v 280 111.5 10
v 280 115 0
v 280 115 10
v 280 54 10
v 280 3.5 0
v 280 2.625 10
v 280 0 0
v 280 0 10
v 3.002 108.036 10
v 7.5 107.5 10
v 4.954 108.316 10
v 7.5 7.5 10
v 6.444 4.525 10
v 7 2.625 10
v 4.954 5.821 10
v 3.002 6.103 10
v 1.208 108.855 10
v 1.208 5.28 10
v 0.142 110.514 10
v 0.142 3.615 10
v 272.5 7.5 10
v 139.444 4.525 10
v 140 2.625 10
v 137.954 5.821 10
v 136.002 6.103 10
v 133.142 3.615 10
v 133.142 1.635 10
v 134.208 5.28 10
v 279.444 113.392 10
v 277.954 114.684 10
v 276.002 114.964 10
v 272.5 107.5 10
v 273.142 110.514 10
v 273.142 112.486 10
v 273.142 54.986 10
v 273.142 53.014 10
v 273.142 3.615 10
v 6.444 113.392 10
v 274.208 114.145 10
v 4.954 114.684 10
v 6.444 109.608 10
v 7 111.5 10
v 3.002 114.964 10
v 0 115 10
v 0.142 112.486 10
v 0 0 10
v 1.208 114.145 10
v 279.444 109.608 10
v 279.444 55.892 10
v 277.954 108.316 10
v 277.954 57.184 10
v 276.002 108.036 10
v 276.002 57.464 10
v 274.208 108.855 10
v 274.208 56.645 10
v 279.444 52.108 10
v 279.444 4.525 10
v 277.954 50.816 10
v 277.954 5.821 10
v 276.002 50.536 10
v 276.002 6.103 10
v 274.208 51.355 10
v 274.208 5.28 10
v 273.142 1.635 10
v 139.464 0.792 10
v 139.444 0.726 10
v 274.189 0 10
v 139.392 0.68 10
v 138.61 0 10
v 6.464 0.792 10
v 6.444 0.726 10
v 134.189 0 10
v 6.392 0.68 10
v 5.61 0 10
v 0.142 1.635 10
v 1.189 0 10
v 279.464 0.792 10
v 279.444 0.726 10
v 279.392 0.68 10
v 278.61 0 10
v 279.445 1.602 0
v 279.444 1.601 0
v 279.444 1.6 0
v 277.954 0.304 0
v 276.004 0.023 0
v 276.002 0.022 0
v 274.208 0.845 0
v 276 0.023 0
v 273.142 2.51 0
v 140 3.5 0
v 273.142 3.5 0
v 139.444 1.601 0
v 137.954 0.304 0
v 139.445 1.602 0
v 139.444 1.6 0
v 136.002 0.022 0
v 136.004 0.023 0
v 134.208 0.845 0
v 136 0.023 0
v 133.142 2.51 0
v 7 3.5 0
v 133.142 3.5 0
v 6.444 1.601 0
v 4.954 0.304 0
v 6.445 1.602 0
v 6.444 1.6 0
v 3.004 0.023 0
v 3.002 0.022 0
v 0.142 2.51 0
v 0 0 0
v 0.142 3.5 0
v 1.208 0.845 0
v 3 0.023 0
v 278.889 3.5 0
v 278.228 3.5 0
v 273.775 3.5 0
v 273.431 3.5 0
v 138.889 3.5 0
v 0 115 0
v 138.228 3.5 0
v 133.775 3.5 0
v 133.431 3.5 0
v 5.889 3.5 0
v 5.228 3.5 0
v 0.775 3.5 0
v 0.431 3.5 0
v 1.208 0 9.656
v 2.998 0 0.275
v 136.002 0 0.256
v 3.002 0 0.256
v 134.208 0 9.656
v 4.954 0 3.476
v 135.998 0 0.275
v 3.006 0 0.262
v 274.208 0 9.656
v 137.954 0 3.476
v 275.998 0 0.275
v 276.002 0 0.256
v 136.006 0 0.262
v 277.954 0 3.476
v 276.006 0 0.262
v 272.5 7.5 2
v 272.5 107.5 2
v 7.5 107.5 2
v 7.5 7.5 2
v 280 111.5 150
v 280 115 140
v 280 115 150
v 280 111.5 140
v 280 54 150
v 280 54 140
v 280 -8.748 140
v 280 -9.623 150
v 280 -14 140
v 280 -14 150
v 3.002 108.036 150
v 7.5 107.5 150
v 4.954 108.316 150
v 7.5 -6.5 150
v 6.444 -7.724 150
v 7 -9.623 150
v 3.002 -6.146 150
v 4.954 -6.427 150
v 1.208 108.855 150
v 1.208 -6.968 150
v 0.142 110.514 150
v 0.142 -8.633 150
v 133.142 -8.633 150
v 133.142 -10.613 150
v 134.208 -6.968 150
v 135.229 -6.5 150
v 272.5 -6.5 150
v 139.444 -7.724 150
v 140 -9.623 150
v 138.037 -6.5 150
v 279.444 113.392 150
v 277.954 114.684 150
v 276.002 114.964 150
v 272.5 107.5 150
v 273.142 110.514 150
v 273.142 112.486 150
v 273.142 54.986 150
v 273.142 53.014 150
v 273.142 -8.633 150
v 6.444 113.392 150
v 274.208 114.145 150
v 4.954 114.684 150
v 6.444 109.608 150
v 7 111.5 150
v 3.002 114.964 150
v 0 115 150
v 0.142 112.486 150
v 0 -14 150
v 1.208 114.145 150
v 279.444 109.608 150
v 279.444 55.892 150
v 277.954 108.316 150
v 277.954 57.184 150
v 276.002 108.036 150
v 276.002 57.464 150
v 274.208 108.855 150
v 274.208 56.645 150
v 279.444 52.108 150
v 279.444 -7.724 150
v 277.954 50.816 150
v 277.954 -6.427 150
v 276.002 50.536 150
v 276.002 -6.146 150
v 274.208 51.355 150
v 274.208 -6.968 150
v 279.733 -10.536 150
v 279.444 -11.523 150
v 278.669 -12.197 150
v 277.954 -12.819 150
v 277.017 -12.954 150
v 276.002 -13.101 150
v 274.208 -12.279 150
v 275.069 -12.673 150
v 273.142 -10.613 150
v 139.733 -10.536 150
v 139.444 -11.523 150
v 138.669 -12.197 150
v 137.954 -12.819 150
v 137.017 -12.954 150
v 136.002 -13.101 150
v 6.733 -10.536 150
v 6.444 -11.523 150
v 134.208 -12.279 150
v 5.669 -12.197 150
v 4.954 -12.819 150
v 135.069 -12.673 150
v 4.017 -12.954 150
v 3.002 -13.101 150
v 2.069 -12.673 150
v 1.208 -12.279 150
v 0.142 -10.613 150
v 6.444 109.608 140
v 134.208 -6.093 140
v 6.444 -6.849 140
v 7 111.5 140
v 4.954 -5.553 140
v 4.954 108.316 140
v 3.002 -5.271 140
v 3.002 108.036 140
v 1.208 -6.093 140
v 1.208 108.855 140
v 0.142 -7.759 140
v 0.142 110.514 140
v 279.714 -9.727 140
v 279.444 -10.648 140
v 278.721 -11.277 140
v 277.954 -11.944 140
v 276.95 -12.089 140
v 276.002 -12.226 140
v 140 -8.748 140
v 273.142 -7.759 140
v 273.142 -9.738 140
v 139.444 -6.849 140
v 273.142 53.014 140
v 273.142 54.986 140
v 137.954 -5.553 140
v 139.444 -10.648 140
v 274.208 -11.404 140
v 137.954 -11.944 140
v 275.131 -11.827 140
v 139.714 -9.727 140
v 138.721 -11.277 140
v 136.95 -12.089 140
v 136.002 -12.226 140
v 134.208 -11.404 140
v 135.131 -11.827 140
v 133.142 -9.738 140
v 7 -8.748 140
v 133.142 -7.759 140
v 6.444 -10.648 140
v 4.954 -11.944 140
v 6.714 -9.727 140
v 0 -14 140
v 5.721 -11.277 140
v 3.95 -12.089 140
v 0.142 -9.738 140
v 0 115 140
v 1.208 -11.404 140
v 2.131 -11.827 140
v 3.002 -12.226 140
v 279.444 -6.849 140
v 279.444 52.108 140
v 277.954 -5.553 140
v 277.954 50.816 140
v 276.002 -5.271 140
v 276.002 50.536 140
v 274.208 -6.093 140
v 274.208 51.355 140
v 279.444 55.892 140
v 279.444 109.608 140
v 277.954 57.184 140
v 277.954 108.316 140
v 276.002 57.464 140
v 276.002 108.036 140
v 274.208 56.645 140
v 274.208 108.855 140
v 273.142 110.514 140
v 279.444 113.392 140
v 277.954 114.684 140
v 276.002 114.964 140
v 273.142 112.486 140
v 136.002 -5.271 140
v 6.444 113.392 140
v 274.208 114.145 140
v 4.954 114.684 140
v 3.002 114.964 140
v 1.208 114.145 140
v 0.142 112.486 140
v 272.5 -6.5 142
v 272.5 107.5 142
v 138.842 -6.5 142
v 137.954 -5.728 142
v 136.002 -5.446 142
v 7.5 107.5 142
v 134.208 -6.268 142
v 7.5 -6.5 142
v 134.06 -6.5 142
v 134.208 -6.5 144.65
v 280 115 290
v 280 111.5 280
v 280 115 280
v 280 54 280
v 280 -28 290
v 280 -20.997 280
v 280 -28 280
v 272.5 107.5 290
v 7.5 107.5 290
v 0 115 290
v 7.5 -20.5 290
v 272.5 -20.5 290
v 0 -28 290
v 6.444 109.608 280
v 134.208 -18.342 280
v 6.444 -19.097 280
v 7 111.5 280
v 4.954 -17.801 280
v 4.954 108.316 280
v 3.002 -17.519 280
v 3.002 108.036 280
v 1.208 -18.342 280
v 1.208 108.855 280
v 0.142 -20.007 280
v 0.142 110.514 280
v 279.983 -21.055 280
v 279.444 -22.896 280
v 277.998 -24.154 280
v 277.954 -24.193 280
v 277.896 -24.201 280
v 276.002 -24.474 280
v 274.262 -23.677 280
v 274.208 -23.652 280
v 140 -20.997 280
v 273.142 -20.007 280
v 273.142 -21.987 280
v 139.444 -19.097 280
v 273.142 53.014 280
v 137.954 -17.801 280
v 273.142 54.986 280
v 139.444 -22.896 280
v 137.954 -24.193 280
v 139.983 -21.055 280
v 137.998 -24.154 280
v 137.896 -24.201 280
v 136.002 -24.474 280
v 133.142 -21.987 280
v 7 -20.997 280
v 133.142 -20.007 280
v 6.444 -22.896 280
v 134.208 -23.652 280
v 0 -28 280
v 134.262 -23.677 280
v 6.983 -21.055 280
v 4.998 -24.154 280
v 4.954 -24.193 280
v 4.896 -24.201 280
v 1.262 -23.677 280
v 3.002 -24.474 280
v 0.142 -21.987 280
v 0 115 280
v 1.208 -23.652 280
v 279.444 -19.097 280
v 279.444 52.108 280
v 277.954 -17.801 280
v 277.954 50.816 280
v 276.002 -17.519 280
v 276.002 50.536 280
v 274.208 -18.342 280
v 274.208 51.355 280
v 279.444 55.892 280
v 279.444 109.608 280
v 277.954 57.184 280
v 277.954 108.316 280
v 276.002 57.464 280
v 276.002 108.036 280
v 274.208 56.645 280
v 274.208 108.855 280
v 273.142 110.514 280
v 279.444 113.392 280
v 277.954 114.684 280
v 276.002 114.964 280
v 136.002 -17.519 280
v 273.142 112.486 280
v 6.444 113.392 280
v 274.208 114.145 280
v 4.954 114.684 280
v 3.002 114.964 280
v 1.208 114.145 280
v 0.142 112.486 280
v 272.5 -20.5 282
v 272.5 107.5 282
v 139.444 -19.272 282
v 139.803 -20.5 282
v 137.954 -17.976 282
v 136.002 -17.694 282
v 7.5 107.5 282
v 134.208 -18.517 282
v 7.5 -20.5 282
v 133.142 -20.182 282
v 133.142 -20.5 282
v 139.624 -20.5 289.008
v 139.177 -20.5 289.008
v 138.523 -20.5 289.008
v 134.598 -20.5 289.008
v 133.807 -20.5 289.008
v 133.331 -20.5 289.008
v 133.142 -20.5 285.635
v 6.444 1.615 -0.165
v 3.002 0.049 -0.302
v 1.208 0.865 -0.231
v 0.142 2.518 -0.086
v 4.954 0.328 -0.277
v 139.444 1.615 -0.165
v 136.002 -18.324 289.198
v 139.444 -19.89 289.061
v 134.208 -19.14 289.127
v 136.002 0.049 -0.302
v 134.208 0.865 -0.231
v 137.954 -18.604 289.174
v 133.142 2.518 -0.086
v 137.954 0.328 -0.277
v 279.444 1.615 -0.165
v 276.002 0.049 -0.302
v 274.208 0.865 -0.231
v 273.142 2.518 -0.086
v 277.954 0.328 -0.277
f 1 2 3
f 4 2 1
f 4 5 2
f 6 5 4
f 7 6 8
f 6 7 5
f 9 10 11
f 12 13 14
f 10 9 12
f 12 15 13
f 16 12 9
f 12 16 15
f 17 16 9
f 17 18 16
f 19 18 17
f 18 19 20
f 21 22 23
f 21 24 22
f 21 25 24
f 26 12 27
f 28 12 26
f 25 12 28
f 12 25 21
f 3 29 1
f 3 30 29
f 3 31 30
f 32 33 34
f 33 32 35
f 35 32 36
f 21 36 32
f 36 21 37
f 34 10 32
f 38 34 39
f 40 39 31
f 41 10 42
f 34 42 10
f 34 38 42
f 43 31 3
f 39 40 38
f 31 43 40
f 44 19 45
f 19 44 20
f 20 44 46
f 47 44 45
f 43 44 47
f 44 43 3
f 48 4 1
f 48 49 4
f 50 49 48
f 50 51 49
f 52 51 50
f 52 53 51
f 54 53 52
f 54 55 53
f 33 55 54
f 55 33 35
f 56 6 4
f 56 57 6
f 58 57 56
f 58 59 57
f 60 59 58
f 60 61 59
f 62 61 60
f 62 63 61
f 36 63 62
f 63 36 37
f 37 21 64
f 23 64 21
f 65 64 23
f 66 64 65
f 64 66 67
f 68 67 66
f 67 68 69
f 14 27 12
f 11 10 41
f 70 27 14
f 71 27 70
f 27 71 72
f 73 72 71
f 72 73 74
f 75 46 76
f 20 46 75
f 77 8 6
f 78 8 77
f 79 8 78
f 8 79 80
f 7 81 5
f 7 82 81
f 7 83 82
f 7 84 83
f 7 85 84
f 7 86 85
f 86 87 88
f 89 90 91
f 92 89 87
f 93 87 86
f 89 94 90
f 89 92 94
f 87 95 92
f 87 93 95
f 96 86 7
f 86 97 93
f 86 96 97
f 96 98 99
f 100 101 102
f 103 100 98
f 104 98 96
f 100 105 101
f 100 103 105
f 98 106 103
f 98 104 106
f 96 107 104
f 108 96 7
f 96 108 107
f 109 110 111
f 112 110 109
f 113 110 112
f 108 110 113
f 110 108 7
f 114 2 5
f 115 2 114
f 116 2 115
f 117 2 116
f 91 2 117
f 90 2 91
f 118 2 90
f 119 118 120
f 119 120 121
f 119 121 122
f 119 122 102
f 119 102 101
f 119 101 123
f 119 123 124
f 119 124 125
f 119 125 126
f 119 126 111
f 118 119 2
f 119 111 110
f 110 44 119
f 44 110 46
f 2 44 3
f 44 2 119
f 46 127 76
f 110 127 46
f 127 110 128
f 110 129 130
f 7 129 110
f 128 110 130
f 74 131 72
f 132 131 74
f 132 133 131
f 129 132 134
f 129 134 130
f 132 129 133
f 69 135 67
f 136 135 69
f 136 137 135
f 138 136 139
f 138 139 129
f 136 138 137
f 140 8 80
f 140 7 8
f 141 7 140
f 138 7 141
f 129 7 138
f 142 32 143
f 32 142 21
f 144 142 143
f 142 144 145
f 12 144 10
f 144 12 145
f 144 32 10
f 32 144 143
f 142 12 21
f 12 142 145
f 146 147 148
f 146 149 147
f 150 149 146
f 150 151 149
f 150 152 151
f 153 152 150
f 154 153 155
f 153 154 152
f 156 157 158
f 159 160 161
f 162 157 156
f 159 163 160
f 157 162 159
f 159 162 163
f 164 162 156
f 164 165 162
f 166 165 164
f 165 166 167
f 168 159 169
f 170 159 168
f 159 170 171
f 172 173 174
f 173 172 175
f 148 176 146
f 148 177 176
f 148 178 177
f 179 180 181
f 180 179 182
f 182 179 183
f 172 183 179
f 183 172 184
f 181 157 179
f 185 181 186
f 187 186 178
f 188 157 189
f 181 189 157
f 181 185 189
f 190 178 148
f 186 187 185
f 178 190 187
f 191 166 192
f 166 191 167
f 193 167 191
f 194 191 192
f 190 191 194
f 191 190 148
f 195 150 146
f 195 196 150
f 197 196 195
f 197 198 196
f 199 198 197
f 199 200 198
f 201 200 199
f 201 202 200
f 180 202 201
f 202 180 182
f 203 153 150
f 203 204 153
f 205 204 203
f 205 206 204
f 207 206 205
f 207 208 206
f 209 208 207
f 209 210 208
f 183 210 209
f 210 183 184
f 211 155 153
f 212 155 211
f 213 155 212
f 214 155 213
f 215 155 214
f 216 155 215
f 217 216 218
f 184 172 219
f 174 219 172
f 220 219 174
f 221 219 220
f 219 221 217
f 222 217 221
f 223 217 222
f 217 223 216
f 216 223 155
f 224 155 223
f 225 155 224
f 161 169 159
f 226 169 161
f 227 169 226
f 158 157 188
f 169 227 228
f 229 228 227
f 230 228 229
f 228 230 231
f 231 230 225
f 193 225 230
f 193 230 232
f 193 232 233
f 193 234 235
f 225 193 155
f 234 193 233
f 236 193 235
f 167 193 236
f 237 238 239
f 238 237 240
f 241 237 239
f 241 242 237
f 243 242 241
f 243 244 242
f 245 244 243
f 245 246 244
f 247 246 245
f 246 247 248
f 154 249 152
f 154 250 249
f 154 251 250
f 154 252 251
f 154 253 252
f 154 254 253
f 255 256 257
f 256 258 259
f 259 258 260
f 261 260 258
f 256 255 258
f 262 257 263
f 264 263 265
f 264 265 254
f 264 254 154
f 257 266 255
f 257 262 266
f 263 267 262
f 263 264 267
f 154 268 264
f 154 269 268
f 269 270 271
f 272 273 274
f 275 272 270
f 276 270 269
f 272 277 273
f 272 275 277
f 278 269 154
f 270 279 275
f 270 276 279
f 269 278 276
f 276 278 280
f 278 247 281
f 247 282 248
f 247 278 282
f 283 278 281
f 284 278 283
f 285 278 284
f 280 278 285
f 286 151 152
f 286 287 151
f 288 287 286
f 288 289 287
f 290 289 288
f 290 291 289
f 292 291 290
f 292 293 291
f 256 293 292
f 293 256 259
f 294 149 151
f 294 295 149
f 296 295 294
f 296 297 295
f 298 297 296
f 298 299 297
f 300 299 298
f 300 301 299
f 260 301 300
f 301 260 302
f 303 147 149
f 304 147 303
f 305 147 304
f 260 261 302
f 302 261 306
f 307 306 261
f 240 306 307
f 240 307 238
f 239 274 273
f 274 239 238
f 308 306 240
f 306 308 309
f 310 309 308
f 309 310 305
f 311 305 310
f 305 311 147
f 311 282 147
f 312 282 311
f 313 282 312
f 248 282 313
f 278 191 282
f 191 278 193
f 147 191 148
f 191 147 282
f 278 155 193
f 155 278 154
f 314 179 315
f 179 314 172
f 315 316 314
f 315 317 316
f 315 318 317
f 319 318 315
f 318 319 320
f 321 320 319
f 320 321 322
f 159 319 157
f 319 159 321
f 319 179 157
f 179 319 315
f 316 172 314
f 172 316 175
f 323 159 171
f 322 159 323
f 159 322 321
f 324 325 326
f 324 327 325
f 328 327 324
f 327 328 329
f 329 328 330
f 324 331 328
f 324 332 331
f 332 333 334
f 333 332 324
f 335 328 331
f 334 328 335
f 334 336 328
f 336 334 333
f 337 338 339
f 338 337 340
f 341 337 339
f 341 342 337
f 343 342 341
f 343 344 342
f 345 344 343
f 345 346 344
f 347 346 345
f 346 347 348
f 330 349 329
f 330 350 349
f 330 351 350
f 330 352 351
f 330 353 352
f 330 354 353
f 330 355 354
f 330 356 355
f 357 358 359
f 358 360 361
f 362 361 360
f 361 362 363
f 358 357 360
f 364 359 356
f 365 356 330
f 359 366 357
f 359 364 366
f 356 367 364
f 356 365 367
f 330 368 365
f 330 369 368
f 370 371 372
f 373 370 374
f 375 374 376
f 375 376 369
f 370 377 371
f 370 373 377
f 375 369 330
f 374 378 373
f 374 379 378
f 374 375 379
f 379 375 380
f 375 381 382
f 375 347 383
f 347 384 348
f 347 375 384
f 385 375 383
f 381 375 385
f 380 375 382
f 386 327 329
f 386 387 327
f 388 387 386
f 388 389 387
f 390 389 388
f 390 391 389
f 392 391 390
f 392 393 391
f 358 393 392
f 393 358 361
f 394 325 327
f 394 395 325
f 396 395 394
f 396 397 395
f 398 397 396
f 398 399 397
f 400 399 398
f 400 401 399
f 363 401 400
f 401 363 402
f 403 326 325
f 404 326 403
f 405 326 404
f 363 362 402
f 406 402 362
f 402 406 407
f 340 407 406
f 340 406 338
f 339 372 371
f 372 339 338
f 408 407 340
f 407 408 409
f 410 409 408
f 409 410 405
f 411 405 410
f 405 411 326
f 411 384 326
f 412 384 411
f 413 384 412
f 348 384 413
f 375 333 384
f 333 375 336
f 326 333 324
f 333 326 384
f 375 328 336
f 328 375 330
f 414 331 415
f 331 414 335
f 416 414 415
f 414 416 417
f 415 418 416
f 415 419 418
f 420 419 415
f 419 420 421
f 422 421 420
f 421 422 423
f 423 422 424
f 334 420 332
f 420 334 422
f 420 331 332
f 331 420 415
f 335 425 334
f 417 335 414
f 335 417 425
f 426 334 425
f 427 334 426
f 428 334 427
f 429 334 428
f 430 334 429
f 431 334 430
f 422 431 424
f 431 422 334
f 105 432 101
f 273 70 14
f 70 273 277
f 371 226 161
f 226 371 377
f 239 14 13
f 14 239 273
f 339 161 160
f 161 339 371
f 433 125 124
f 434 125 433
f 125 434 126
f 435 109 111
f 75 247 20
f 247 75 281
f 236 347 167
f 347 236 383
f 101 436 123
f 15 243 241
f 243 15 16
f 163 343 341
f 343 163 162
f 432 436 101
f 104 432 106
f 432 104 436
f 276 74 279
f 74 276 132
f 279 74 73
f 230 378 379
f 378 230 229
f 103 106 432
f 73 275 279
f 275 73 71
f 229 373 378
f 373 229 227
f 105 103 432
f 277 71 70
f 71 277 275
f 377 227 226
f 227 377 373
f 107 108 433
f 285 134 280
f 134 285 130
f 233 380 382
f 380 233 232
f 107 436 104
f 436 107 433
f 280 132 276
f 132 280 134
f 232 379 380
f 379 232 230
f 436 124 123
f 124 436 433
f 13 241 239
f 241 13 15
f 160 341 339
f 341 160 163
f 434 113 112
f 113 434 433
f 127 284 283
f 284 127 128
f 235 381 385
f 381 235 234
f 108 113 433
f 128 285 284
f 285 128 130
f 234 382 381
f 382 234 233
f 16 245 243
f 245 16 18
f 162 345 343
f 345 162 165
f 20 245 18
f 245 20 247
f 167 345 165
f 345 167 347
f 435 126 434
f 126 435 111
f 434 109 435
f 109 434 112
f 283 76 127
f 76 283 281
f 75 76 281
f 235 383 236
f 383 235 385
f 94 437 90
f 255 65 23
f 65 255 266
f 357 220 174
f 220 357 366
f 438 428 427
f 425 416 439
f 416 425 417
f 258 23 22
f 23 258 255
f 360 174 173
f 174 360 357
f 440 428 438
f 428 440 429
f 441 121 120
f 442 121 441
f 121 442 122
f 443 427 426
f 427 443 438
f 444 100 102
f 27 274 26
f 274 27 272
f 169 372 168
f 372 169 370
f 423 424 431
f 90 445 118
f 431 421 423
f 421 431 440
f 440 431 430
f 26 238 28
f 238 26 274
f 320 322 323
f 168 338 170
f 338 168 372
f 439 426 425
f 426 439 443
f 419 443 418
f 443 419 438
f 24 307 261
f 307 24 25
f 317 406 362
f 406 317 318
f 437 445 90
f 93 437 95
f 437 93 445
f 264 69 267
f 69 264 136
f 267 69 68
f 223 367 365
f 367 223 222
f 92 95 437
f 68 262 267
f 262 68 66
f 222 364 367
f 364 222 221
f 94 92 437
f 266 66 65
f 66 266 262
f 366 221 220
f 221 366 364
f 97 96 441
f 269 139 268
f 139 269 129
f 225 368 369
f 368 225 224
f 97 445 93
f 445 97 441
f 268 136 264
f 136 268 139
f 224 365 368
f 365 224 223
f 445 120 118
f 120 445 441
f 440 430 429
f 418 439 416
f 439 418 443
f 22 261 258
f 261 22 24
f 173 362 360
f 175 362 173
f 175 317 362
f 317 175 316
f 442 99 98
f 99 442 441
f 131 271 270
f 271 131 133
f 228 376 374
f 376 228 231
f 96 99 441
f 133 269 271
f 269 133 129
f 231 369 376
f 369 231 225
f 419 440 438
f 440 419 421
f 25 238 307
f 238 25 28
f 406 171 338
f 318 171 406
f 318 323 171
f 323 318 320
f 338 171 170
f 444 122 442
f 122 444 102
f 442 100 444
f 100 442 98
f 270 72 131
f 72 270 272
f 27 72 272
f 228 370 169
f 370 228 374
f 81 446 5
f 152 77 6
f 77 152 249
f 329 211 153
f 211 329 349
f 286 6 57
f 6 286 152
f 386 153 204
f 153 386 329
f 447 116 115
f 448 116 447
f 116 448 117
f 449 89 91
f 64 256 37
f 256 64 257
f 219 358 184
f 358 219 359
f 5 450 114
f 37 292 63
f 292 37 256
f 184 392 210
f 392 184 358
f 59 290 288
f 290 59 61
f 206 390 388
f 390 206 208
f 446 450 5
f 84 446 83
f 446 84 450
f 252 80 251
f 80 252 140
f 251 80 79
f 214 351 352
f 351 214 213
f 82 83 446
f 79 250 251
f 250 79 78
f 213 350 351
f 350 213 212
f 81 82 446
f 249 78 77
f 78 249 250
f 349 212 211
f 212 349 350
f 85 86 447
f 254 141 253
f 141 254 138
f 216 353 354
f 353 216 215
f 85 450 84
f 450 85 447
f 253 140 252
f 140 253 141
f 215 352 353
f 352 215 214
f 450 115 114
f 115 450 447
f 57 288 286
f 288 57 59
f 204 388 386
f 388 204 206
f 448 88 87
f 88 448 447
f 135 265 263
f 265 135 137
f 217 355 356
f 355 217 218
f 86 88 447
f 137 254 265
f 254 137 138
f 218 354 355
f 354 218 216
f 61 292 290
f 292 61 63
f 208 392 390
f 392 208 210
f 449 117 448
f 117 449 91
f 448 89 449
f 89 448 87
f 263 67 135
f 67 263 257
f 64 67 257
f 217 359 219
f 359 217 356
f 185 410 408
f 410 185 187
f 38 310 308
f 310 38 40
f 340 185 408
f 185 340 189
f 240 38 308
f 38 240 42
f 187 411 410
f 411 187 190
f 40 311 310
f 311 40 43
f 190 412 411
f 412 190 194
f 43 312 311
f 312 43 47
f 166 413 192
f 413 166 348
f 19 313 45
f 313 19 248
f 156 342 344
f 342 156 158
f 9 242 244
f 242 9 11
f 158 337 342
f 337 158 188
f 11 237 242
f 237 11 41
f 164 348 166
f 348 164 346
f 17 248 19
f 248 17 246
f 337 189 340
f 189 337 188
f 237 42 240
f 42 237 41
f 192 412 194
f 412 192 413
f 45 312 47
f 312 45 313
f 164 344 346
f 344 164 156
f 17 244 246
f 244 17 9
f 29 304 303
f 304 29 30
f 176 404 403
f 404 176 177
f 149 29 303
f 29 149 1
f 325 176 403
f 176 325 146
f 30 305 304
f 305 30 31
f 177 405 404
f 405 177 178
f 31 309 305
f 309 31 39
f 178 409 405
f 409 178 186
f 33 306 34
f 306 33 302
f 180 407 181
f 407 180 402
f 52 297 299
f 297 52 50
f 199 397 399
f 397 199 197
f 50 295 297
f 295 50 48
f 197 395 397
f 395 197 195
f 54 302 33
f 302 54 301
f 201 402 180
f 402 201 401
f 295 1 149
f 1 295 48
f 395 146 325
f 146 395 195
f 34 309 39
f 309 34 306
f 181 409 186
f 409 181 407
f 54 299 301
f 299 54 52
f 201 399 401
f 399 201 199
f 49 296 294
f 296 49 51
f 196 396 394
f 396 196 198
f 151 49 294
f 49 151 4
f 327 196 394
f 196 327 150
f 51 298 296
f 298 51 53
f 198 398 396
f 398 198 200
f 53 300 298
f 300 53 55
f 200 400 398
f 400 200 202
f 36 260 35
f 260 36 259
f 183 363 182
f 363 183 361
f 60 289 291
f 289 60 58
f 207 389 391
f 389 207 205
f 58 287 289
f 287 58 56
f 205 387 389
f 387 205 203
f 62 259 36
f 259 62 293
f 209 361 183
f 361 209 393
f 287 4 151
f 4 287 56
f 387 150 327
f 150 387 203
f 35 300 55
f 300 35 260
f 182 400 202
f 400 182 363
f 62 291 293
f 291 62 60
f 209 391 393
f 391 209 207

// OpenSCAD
// Dimensions de l'étagère
longueur = 280;
largeur = 115;
largeur_suppl_etage_2 = 14;
largeur_deuxieme_etage = largeur + largeur_suppl_etage_2;
epaisseur = 10;
epaisseur_fond = 2;
epaisseur_rebord = 15;
hauteur_etage = 140;
diametre_pied = 7;
rayon_pied = diametre_pied/2;
hauteur_pied = 10; // Hauteur des pieds

angle_inclinaison_pieds = 5; // Angle d'inclinaison des pieds

module etagere_avec_rebord(largeur_additionnelle = 0) {
    difference() {
        cube([longueur, largeur+largeur_additionnelle, epaisseur]);
        translate([epaisseur_rebord/2, epaisseur_rebord/2, epaisseur_fond])
            cube([longueur - epaisseur_rebord, largeur - epaisseur_rebord + largeur_additionnelle, epaisseur * 2 ]);
    }
}

// Fonction pour créer un pied
module pied_incline() {
    rotate([angle_inclinaison_pieds, 0, 0])
        pied();
}

module pied() {
    cylinder(h = hauteur_etage *2 + 10, d = diametre_pied);
}

// Création de l'étagère principale
etagere_avec_rebord();

// Création de l'étage à hauteur_etage cm de hauteur
translate([0, -largeur_suppl_etage_2, hauteur_etage])
    etagere_avec_rebord(largeur_suppl_etage_2);

// Création de l'étage à hauteur_etage cm de hauteur
translate([0, -largeur_suppl_etage_2 *2, hauteur_etage*2])
    etagere_avec_rebord(largeur_suppl_etage_2*2);
    
    


//Pied coin 1
translate([rayon_pied, rayon_pied, 0])
    pied_incline();

//Pied millieu 1
translate([longueur/2 - rayon_pied, rayon_pied, 0])
    pied_incline();
//Pied coin 2
translate([longueur - rayon_pied, rayon_pied, 0])
    pied_incline();
//Pied coin 3 
translate([rayon_pied, largeur - rayon_pied, 0])
    pied();

//Pied coin 4 
translate([longueur - rayon_pied, largeur - rayon_pied, 0])
    pied();

//Pied coin 4 
translate([longueur - rayon_pied, largeur/2 - rayon_pied, 0])
    pied();
